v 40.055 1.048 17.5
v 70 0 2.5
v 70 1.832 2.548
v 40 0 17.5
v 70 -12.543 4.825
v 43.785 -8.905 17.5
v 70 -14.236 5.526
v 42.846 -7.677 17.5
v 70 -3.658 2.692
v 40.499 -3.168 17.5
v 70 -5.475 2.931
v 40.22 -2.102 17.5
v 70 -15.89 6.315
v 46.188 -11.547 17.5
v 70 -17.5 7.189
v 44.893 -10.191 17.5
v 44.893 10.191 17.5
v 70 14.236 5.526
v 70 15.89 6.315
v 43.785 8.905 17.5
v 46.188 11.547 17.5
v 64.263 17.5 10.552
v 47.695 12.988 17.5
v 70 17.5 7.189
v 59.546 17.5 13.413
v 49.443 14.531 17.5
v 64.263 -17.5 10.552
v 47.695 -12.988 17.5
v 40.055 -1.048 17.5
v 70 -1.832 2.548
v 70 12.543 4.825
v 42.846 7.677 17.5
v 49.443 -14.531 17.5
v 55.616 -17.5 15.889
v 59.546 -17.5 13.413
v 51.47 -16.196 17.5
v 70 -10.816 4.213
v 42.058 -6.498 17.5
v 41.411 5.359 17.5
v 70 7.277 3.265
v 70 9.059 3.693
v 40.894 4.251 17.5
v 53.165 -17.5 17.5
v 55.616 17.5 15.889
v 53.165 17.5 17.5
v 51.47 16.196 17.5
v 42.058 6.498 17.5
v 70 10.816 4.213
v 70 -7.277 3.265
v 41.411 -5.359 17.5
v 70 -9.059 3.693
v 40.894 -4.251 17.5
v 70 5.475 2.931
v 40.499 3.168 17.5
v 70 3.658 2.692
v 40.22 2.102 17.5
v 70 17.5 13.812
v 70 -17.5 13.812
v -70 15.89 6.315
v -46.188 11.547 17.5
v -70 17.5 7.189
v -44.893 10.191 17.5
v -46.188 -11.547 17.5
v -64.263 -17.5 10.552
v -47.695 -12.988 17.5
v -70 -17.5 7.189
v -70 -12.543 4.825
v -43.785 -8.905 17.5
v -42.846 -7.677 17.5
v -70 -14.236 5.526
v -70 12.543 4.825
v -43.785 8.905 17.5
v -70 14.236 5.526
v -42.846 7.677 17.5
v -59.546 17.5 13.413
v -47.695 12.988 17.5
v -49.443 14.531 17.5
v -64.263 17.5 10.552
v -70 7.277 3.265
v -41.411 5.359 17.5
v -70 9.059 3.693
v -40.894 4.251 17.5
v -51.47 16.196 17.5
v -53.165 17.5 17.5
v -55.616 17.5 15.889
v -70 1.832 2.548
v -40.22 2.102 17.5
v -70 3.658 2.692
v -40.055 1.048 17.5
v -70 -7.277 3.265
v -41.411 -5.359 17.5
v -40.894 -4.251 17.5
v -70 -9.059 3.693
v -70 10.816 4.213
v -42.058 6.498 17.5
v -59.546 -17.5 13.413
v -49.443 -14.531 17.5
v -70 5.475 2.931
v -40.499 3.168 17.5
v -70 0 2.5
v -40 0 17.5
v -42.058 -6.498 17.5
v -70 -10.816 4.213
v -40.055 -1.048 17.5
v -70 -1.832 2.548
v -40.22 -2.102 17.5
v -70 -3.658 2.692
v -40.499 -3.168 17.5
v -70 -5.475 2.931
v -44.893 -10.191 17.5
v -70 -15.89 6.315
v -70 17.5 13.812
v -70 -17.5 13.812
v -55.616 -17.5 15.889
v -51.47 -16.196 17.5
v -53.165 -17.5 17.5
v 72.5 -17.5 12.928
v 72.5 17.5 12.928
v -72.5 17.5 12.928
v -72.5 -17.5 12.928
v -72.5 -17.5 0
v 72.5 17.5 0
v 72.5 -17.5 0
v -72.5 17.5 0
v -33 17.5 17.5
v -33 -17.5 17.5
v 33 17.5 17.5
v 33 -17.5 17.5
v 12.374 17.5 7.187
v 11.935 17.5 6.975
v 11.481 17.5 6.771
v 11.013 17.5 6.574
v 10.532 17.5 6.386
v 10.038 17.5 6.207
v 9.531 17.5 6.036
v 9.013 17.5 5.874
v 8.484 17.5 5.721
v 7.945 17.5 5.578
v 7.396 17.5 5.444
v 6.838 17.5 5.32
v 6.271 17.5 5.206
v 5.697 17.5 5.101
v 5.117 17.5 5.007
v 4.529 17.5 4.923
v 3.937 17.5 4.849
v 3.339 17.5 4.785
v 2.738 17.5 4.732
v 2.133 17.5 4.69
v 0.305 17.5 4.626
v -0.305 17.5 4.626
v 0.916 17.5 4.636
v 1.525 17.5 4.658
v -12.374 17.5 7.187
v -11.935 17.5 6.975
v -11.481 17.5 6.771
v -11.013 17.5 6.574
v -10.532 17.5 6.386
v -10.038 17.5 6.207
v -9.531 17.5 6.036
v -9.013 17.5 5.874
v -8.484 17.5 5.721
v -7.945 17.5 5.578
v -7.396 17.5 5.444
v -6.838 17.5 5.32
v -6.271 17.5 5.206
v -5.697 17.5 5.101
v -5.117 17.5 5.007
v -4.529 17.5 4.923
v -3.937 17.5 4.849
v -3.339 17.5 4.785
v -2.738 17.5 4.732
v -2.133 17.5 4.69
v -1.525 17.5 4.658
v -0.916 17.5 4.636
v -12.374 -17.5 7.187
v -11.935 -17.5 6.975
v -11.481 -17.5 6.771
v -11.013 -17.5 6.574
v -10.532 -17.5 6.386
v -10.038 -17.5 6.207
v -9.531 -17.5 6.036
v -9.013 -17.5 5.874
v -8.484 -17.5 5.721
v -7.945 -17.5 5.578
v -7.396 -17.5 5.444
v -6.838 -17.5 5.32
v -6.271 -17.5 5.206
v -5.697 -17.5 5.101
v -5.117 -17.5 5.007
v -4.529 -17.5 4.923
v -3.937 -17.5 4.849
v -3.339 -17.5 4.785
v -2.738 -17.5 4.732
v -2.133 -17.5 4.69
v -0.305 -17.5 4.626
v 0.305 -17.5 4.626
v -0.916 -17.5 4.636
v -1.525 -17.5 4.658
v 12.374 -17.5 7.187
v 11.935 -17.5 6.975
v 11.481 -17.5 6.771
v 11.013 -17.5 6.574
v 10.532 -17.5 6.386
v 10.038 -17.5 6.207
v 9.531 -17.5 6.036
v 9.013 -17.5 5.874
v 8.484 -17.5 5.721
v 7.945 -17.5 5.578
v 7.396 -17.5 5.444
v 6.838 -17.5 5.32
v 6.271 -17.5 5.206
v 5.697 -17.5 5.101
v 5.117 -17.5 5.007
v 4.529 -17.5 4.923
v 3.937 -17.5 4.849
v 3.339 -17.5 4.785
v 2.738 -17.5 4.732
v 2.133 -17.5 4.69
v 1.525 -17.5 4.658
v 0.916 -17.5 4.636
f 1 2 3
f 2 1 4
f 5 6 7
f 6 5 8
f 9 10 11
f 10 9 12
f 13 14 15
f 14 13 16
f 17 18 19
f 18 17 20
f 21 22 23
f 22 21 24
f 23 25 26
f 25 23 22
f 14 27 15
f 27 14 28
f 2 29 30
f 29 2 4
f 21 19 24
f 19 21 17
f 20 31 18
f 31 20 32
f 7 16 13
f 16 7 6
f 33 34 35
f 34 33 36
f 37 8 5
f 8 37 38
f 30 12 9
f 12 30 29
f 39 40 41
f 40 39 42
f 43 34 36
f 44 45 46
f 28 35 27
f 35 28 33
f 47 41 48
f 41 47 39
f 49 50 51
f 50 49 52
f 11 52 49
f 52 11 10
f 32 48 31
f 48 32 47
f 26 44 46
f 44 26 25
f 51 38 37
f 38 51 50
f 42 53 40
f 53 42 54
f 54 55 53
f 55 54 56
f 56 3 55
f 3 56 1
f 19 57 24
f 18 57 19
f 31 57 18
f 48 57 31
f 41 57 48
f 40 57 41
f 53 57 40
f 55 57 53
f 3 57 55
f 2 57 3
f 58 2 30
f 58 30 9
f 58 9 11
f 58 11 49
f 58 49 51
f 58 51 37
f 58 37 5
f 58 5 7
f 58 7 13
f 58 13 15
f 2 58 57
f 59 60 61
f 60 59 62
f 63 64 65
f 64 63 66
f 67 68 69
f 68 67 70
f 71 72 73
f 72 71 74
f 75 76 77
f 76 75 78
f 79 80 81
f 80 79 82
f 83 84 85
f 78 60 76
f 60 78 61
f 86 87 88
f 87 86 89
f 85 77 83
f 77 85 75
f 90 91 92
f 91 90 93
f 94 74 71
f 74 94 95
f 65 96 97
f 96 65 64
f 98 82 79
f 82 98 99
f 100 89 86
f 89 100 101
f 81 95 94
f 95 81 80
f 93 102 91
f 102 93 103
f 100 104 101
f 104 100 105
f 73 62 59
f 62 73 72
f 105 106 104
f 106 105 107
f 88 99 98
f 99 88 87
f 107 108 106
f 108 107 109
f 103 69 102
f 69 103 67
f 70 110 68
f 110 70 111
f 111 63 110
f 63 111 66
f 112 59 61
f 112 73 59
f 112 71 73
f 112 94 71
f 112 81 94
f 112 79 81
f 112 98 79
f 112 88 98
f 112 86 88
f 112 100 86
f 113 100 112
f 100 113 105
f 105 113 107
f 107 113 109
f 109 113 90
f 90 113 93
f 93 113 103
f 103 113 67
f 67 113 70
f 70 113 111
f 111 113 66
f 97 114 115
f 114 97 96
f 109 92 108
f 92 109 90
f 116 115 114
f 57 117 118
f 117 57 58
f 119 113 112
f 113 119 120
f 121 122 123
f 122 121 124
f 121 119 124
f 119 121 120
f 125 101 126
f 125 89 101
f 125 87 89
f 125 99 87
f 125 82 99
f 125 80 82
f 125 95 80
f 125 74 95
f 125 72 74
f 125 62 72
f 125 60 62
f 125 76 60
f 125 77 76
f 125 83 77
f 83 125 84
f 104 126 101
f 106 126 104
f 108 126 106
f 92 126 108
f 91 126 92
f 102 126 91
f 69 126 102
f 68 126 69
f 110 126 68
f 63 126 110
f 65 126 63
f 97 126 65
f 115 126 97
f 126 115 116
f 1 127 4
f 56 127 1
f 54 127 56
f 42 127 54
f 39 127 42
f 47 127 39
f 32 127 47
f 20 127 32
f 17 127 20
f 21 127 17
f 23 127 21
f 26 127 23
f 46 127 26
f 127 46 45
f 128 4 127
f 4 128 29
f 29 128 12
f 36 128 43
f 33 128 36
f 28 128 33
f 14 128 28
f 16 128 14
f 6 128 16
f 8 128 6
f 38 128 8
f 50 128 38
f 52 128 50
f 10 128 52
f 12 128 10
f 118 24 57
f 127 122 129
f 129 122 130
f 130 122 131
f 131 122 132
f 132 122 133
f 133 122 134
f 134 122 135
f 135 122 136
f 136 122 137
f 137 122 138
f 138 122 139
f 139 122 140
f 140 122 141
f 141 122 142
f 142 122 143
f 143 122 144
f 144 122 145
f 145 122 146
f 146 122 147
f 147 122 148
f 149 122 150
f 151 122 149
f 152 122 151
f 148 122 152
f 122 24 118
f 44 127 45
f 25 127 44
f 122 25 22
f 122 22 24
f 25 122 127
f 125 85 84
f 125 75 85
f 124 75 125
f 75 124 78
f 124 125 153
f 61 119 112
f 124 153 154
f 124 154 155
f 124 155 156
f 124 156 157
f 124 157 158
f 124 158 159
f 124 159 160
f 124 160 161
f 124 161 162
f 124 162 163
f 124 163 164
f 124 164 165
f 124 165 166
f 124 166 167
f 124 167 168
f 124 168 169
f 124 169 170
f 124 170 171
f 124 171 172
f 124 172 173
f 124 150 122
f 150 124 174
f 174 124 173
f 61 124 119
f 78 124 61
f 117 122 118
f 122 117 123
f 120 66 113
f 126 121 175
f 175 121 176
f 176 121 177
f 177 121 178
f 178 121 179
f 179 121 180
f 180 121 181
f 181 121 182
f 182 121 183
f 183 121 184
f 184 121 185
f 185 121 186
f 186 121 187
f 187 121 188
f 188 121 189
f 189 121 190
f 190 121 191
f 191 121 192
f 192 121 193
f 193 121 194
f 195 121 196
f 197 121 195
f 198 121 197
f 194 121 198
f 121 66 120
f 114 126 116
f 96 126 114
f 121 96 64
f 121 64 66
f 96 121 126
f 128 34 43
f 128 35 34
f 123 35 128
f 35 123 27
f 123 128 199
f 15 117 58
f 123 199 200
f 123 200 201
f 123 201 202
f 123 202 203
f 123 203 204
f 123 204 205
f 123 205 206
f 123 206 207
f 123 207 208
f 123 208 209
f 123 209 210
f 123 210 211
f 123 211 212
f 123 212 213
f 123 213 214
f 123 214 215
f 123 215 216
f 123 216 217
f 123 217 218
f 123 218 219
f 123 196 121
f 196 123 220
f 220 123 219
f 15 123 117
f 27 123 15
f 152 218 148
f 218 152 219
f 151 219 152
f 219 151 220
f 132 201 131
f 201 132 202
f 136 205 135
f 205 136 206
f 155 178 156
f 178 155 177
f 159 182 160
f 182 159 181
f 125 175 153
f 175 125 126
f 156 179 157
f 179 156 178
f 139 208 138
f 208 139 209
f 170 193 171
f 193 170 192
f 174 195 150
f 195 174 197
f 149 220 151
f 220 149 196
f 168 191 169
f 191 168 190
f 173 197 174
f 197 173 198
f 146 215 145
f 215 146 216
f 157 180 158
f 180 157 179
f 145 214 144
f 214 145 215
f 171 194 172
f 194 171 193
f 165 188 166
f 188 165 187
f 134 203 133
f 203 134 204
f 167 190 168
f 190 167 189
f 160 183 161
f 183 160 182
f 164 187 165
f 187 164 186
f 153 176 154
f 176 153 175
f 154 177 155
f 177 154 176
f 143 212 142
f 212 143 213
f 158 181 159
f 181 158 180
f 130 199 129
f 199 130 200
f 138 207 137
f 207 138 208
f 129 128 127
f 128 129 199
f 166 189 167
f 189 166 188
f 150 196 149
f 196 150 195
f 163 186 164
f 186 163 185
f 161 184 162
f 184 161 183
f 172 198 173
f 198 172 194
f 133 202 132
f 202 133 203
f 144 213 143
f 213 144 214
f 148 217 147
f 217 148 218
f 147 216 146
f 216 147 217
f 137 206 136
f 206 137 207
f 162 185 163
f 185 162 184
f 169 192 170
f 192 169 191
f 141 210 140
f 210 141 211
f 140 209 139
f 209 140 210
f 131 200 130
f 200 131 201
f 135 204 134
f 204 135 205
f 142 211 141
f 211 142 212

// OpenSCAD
// File cone_cradle.scad 
// For holding a pair of cones generated by conic_section.scad
// (c) 2023 Rich Cameron, for the book Make:Trigonometry
// Licensed under a Creative Commons, Attribution,
// CC-BY 4.0 international license, per
// https://creativecommons.org/licenses/by/4.0/
// Attribute to Rich Cameron, at
// repository github.com/whosawhatsis/Trigonometry

h = 70;
n = 120;
r = h / 2;
w = r;

$fs = .2;
$fa = 2;

difference() {
	linear_extrude(r / 2) square([h * 2 + 5, w], center = true);
	for(i = [1, -1]) translate([0, 0, r + 2.5]) rotate([0, i * 90, 0]) cylinder(r2 = r, r1 = 0, h = h, $fn = n);
	for(i = [1, -1]) translate([i * 3, 0, r + 2.5]) rotate([0, i * 90, 0]) rotate(45) cylinder(r2 = r, r1 = 0, h = h, $fn = 4);
	translate([0, 0, r + 1]) scale([1, 1, r / h]) rotate([90, 0, 0]) linear_extrude(r * 2, center = true) offset(r / 2) offset(-r / 2) circle(h, $fn = 4);
}
